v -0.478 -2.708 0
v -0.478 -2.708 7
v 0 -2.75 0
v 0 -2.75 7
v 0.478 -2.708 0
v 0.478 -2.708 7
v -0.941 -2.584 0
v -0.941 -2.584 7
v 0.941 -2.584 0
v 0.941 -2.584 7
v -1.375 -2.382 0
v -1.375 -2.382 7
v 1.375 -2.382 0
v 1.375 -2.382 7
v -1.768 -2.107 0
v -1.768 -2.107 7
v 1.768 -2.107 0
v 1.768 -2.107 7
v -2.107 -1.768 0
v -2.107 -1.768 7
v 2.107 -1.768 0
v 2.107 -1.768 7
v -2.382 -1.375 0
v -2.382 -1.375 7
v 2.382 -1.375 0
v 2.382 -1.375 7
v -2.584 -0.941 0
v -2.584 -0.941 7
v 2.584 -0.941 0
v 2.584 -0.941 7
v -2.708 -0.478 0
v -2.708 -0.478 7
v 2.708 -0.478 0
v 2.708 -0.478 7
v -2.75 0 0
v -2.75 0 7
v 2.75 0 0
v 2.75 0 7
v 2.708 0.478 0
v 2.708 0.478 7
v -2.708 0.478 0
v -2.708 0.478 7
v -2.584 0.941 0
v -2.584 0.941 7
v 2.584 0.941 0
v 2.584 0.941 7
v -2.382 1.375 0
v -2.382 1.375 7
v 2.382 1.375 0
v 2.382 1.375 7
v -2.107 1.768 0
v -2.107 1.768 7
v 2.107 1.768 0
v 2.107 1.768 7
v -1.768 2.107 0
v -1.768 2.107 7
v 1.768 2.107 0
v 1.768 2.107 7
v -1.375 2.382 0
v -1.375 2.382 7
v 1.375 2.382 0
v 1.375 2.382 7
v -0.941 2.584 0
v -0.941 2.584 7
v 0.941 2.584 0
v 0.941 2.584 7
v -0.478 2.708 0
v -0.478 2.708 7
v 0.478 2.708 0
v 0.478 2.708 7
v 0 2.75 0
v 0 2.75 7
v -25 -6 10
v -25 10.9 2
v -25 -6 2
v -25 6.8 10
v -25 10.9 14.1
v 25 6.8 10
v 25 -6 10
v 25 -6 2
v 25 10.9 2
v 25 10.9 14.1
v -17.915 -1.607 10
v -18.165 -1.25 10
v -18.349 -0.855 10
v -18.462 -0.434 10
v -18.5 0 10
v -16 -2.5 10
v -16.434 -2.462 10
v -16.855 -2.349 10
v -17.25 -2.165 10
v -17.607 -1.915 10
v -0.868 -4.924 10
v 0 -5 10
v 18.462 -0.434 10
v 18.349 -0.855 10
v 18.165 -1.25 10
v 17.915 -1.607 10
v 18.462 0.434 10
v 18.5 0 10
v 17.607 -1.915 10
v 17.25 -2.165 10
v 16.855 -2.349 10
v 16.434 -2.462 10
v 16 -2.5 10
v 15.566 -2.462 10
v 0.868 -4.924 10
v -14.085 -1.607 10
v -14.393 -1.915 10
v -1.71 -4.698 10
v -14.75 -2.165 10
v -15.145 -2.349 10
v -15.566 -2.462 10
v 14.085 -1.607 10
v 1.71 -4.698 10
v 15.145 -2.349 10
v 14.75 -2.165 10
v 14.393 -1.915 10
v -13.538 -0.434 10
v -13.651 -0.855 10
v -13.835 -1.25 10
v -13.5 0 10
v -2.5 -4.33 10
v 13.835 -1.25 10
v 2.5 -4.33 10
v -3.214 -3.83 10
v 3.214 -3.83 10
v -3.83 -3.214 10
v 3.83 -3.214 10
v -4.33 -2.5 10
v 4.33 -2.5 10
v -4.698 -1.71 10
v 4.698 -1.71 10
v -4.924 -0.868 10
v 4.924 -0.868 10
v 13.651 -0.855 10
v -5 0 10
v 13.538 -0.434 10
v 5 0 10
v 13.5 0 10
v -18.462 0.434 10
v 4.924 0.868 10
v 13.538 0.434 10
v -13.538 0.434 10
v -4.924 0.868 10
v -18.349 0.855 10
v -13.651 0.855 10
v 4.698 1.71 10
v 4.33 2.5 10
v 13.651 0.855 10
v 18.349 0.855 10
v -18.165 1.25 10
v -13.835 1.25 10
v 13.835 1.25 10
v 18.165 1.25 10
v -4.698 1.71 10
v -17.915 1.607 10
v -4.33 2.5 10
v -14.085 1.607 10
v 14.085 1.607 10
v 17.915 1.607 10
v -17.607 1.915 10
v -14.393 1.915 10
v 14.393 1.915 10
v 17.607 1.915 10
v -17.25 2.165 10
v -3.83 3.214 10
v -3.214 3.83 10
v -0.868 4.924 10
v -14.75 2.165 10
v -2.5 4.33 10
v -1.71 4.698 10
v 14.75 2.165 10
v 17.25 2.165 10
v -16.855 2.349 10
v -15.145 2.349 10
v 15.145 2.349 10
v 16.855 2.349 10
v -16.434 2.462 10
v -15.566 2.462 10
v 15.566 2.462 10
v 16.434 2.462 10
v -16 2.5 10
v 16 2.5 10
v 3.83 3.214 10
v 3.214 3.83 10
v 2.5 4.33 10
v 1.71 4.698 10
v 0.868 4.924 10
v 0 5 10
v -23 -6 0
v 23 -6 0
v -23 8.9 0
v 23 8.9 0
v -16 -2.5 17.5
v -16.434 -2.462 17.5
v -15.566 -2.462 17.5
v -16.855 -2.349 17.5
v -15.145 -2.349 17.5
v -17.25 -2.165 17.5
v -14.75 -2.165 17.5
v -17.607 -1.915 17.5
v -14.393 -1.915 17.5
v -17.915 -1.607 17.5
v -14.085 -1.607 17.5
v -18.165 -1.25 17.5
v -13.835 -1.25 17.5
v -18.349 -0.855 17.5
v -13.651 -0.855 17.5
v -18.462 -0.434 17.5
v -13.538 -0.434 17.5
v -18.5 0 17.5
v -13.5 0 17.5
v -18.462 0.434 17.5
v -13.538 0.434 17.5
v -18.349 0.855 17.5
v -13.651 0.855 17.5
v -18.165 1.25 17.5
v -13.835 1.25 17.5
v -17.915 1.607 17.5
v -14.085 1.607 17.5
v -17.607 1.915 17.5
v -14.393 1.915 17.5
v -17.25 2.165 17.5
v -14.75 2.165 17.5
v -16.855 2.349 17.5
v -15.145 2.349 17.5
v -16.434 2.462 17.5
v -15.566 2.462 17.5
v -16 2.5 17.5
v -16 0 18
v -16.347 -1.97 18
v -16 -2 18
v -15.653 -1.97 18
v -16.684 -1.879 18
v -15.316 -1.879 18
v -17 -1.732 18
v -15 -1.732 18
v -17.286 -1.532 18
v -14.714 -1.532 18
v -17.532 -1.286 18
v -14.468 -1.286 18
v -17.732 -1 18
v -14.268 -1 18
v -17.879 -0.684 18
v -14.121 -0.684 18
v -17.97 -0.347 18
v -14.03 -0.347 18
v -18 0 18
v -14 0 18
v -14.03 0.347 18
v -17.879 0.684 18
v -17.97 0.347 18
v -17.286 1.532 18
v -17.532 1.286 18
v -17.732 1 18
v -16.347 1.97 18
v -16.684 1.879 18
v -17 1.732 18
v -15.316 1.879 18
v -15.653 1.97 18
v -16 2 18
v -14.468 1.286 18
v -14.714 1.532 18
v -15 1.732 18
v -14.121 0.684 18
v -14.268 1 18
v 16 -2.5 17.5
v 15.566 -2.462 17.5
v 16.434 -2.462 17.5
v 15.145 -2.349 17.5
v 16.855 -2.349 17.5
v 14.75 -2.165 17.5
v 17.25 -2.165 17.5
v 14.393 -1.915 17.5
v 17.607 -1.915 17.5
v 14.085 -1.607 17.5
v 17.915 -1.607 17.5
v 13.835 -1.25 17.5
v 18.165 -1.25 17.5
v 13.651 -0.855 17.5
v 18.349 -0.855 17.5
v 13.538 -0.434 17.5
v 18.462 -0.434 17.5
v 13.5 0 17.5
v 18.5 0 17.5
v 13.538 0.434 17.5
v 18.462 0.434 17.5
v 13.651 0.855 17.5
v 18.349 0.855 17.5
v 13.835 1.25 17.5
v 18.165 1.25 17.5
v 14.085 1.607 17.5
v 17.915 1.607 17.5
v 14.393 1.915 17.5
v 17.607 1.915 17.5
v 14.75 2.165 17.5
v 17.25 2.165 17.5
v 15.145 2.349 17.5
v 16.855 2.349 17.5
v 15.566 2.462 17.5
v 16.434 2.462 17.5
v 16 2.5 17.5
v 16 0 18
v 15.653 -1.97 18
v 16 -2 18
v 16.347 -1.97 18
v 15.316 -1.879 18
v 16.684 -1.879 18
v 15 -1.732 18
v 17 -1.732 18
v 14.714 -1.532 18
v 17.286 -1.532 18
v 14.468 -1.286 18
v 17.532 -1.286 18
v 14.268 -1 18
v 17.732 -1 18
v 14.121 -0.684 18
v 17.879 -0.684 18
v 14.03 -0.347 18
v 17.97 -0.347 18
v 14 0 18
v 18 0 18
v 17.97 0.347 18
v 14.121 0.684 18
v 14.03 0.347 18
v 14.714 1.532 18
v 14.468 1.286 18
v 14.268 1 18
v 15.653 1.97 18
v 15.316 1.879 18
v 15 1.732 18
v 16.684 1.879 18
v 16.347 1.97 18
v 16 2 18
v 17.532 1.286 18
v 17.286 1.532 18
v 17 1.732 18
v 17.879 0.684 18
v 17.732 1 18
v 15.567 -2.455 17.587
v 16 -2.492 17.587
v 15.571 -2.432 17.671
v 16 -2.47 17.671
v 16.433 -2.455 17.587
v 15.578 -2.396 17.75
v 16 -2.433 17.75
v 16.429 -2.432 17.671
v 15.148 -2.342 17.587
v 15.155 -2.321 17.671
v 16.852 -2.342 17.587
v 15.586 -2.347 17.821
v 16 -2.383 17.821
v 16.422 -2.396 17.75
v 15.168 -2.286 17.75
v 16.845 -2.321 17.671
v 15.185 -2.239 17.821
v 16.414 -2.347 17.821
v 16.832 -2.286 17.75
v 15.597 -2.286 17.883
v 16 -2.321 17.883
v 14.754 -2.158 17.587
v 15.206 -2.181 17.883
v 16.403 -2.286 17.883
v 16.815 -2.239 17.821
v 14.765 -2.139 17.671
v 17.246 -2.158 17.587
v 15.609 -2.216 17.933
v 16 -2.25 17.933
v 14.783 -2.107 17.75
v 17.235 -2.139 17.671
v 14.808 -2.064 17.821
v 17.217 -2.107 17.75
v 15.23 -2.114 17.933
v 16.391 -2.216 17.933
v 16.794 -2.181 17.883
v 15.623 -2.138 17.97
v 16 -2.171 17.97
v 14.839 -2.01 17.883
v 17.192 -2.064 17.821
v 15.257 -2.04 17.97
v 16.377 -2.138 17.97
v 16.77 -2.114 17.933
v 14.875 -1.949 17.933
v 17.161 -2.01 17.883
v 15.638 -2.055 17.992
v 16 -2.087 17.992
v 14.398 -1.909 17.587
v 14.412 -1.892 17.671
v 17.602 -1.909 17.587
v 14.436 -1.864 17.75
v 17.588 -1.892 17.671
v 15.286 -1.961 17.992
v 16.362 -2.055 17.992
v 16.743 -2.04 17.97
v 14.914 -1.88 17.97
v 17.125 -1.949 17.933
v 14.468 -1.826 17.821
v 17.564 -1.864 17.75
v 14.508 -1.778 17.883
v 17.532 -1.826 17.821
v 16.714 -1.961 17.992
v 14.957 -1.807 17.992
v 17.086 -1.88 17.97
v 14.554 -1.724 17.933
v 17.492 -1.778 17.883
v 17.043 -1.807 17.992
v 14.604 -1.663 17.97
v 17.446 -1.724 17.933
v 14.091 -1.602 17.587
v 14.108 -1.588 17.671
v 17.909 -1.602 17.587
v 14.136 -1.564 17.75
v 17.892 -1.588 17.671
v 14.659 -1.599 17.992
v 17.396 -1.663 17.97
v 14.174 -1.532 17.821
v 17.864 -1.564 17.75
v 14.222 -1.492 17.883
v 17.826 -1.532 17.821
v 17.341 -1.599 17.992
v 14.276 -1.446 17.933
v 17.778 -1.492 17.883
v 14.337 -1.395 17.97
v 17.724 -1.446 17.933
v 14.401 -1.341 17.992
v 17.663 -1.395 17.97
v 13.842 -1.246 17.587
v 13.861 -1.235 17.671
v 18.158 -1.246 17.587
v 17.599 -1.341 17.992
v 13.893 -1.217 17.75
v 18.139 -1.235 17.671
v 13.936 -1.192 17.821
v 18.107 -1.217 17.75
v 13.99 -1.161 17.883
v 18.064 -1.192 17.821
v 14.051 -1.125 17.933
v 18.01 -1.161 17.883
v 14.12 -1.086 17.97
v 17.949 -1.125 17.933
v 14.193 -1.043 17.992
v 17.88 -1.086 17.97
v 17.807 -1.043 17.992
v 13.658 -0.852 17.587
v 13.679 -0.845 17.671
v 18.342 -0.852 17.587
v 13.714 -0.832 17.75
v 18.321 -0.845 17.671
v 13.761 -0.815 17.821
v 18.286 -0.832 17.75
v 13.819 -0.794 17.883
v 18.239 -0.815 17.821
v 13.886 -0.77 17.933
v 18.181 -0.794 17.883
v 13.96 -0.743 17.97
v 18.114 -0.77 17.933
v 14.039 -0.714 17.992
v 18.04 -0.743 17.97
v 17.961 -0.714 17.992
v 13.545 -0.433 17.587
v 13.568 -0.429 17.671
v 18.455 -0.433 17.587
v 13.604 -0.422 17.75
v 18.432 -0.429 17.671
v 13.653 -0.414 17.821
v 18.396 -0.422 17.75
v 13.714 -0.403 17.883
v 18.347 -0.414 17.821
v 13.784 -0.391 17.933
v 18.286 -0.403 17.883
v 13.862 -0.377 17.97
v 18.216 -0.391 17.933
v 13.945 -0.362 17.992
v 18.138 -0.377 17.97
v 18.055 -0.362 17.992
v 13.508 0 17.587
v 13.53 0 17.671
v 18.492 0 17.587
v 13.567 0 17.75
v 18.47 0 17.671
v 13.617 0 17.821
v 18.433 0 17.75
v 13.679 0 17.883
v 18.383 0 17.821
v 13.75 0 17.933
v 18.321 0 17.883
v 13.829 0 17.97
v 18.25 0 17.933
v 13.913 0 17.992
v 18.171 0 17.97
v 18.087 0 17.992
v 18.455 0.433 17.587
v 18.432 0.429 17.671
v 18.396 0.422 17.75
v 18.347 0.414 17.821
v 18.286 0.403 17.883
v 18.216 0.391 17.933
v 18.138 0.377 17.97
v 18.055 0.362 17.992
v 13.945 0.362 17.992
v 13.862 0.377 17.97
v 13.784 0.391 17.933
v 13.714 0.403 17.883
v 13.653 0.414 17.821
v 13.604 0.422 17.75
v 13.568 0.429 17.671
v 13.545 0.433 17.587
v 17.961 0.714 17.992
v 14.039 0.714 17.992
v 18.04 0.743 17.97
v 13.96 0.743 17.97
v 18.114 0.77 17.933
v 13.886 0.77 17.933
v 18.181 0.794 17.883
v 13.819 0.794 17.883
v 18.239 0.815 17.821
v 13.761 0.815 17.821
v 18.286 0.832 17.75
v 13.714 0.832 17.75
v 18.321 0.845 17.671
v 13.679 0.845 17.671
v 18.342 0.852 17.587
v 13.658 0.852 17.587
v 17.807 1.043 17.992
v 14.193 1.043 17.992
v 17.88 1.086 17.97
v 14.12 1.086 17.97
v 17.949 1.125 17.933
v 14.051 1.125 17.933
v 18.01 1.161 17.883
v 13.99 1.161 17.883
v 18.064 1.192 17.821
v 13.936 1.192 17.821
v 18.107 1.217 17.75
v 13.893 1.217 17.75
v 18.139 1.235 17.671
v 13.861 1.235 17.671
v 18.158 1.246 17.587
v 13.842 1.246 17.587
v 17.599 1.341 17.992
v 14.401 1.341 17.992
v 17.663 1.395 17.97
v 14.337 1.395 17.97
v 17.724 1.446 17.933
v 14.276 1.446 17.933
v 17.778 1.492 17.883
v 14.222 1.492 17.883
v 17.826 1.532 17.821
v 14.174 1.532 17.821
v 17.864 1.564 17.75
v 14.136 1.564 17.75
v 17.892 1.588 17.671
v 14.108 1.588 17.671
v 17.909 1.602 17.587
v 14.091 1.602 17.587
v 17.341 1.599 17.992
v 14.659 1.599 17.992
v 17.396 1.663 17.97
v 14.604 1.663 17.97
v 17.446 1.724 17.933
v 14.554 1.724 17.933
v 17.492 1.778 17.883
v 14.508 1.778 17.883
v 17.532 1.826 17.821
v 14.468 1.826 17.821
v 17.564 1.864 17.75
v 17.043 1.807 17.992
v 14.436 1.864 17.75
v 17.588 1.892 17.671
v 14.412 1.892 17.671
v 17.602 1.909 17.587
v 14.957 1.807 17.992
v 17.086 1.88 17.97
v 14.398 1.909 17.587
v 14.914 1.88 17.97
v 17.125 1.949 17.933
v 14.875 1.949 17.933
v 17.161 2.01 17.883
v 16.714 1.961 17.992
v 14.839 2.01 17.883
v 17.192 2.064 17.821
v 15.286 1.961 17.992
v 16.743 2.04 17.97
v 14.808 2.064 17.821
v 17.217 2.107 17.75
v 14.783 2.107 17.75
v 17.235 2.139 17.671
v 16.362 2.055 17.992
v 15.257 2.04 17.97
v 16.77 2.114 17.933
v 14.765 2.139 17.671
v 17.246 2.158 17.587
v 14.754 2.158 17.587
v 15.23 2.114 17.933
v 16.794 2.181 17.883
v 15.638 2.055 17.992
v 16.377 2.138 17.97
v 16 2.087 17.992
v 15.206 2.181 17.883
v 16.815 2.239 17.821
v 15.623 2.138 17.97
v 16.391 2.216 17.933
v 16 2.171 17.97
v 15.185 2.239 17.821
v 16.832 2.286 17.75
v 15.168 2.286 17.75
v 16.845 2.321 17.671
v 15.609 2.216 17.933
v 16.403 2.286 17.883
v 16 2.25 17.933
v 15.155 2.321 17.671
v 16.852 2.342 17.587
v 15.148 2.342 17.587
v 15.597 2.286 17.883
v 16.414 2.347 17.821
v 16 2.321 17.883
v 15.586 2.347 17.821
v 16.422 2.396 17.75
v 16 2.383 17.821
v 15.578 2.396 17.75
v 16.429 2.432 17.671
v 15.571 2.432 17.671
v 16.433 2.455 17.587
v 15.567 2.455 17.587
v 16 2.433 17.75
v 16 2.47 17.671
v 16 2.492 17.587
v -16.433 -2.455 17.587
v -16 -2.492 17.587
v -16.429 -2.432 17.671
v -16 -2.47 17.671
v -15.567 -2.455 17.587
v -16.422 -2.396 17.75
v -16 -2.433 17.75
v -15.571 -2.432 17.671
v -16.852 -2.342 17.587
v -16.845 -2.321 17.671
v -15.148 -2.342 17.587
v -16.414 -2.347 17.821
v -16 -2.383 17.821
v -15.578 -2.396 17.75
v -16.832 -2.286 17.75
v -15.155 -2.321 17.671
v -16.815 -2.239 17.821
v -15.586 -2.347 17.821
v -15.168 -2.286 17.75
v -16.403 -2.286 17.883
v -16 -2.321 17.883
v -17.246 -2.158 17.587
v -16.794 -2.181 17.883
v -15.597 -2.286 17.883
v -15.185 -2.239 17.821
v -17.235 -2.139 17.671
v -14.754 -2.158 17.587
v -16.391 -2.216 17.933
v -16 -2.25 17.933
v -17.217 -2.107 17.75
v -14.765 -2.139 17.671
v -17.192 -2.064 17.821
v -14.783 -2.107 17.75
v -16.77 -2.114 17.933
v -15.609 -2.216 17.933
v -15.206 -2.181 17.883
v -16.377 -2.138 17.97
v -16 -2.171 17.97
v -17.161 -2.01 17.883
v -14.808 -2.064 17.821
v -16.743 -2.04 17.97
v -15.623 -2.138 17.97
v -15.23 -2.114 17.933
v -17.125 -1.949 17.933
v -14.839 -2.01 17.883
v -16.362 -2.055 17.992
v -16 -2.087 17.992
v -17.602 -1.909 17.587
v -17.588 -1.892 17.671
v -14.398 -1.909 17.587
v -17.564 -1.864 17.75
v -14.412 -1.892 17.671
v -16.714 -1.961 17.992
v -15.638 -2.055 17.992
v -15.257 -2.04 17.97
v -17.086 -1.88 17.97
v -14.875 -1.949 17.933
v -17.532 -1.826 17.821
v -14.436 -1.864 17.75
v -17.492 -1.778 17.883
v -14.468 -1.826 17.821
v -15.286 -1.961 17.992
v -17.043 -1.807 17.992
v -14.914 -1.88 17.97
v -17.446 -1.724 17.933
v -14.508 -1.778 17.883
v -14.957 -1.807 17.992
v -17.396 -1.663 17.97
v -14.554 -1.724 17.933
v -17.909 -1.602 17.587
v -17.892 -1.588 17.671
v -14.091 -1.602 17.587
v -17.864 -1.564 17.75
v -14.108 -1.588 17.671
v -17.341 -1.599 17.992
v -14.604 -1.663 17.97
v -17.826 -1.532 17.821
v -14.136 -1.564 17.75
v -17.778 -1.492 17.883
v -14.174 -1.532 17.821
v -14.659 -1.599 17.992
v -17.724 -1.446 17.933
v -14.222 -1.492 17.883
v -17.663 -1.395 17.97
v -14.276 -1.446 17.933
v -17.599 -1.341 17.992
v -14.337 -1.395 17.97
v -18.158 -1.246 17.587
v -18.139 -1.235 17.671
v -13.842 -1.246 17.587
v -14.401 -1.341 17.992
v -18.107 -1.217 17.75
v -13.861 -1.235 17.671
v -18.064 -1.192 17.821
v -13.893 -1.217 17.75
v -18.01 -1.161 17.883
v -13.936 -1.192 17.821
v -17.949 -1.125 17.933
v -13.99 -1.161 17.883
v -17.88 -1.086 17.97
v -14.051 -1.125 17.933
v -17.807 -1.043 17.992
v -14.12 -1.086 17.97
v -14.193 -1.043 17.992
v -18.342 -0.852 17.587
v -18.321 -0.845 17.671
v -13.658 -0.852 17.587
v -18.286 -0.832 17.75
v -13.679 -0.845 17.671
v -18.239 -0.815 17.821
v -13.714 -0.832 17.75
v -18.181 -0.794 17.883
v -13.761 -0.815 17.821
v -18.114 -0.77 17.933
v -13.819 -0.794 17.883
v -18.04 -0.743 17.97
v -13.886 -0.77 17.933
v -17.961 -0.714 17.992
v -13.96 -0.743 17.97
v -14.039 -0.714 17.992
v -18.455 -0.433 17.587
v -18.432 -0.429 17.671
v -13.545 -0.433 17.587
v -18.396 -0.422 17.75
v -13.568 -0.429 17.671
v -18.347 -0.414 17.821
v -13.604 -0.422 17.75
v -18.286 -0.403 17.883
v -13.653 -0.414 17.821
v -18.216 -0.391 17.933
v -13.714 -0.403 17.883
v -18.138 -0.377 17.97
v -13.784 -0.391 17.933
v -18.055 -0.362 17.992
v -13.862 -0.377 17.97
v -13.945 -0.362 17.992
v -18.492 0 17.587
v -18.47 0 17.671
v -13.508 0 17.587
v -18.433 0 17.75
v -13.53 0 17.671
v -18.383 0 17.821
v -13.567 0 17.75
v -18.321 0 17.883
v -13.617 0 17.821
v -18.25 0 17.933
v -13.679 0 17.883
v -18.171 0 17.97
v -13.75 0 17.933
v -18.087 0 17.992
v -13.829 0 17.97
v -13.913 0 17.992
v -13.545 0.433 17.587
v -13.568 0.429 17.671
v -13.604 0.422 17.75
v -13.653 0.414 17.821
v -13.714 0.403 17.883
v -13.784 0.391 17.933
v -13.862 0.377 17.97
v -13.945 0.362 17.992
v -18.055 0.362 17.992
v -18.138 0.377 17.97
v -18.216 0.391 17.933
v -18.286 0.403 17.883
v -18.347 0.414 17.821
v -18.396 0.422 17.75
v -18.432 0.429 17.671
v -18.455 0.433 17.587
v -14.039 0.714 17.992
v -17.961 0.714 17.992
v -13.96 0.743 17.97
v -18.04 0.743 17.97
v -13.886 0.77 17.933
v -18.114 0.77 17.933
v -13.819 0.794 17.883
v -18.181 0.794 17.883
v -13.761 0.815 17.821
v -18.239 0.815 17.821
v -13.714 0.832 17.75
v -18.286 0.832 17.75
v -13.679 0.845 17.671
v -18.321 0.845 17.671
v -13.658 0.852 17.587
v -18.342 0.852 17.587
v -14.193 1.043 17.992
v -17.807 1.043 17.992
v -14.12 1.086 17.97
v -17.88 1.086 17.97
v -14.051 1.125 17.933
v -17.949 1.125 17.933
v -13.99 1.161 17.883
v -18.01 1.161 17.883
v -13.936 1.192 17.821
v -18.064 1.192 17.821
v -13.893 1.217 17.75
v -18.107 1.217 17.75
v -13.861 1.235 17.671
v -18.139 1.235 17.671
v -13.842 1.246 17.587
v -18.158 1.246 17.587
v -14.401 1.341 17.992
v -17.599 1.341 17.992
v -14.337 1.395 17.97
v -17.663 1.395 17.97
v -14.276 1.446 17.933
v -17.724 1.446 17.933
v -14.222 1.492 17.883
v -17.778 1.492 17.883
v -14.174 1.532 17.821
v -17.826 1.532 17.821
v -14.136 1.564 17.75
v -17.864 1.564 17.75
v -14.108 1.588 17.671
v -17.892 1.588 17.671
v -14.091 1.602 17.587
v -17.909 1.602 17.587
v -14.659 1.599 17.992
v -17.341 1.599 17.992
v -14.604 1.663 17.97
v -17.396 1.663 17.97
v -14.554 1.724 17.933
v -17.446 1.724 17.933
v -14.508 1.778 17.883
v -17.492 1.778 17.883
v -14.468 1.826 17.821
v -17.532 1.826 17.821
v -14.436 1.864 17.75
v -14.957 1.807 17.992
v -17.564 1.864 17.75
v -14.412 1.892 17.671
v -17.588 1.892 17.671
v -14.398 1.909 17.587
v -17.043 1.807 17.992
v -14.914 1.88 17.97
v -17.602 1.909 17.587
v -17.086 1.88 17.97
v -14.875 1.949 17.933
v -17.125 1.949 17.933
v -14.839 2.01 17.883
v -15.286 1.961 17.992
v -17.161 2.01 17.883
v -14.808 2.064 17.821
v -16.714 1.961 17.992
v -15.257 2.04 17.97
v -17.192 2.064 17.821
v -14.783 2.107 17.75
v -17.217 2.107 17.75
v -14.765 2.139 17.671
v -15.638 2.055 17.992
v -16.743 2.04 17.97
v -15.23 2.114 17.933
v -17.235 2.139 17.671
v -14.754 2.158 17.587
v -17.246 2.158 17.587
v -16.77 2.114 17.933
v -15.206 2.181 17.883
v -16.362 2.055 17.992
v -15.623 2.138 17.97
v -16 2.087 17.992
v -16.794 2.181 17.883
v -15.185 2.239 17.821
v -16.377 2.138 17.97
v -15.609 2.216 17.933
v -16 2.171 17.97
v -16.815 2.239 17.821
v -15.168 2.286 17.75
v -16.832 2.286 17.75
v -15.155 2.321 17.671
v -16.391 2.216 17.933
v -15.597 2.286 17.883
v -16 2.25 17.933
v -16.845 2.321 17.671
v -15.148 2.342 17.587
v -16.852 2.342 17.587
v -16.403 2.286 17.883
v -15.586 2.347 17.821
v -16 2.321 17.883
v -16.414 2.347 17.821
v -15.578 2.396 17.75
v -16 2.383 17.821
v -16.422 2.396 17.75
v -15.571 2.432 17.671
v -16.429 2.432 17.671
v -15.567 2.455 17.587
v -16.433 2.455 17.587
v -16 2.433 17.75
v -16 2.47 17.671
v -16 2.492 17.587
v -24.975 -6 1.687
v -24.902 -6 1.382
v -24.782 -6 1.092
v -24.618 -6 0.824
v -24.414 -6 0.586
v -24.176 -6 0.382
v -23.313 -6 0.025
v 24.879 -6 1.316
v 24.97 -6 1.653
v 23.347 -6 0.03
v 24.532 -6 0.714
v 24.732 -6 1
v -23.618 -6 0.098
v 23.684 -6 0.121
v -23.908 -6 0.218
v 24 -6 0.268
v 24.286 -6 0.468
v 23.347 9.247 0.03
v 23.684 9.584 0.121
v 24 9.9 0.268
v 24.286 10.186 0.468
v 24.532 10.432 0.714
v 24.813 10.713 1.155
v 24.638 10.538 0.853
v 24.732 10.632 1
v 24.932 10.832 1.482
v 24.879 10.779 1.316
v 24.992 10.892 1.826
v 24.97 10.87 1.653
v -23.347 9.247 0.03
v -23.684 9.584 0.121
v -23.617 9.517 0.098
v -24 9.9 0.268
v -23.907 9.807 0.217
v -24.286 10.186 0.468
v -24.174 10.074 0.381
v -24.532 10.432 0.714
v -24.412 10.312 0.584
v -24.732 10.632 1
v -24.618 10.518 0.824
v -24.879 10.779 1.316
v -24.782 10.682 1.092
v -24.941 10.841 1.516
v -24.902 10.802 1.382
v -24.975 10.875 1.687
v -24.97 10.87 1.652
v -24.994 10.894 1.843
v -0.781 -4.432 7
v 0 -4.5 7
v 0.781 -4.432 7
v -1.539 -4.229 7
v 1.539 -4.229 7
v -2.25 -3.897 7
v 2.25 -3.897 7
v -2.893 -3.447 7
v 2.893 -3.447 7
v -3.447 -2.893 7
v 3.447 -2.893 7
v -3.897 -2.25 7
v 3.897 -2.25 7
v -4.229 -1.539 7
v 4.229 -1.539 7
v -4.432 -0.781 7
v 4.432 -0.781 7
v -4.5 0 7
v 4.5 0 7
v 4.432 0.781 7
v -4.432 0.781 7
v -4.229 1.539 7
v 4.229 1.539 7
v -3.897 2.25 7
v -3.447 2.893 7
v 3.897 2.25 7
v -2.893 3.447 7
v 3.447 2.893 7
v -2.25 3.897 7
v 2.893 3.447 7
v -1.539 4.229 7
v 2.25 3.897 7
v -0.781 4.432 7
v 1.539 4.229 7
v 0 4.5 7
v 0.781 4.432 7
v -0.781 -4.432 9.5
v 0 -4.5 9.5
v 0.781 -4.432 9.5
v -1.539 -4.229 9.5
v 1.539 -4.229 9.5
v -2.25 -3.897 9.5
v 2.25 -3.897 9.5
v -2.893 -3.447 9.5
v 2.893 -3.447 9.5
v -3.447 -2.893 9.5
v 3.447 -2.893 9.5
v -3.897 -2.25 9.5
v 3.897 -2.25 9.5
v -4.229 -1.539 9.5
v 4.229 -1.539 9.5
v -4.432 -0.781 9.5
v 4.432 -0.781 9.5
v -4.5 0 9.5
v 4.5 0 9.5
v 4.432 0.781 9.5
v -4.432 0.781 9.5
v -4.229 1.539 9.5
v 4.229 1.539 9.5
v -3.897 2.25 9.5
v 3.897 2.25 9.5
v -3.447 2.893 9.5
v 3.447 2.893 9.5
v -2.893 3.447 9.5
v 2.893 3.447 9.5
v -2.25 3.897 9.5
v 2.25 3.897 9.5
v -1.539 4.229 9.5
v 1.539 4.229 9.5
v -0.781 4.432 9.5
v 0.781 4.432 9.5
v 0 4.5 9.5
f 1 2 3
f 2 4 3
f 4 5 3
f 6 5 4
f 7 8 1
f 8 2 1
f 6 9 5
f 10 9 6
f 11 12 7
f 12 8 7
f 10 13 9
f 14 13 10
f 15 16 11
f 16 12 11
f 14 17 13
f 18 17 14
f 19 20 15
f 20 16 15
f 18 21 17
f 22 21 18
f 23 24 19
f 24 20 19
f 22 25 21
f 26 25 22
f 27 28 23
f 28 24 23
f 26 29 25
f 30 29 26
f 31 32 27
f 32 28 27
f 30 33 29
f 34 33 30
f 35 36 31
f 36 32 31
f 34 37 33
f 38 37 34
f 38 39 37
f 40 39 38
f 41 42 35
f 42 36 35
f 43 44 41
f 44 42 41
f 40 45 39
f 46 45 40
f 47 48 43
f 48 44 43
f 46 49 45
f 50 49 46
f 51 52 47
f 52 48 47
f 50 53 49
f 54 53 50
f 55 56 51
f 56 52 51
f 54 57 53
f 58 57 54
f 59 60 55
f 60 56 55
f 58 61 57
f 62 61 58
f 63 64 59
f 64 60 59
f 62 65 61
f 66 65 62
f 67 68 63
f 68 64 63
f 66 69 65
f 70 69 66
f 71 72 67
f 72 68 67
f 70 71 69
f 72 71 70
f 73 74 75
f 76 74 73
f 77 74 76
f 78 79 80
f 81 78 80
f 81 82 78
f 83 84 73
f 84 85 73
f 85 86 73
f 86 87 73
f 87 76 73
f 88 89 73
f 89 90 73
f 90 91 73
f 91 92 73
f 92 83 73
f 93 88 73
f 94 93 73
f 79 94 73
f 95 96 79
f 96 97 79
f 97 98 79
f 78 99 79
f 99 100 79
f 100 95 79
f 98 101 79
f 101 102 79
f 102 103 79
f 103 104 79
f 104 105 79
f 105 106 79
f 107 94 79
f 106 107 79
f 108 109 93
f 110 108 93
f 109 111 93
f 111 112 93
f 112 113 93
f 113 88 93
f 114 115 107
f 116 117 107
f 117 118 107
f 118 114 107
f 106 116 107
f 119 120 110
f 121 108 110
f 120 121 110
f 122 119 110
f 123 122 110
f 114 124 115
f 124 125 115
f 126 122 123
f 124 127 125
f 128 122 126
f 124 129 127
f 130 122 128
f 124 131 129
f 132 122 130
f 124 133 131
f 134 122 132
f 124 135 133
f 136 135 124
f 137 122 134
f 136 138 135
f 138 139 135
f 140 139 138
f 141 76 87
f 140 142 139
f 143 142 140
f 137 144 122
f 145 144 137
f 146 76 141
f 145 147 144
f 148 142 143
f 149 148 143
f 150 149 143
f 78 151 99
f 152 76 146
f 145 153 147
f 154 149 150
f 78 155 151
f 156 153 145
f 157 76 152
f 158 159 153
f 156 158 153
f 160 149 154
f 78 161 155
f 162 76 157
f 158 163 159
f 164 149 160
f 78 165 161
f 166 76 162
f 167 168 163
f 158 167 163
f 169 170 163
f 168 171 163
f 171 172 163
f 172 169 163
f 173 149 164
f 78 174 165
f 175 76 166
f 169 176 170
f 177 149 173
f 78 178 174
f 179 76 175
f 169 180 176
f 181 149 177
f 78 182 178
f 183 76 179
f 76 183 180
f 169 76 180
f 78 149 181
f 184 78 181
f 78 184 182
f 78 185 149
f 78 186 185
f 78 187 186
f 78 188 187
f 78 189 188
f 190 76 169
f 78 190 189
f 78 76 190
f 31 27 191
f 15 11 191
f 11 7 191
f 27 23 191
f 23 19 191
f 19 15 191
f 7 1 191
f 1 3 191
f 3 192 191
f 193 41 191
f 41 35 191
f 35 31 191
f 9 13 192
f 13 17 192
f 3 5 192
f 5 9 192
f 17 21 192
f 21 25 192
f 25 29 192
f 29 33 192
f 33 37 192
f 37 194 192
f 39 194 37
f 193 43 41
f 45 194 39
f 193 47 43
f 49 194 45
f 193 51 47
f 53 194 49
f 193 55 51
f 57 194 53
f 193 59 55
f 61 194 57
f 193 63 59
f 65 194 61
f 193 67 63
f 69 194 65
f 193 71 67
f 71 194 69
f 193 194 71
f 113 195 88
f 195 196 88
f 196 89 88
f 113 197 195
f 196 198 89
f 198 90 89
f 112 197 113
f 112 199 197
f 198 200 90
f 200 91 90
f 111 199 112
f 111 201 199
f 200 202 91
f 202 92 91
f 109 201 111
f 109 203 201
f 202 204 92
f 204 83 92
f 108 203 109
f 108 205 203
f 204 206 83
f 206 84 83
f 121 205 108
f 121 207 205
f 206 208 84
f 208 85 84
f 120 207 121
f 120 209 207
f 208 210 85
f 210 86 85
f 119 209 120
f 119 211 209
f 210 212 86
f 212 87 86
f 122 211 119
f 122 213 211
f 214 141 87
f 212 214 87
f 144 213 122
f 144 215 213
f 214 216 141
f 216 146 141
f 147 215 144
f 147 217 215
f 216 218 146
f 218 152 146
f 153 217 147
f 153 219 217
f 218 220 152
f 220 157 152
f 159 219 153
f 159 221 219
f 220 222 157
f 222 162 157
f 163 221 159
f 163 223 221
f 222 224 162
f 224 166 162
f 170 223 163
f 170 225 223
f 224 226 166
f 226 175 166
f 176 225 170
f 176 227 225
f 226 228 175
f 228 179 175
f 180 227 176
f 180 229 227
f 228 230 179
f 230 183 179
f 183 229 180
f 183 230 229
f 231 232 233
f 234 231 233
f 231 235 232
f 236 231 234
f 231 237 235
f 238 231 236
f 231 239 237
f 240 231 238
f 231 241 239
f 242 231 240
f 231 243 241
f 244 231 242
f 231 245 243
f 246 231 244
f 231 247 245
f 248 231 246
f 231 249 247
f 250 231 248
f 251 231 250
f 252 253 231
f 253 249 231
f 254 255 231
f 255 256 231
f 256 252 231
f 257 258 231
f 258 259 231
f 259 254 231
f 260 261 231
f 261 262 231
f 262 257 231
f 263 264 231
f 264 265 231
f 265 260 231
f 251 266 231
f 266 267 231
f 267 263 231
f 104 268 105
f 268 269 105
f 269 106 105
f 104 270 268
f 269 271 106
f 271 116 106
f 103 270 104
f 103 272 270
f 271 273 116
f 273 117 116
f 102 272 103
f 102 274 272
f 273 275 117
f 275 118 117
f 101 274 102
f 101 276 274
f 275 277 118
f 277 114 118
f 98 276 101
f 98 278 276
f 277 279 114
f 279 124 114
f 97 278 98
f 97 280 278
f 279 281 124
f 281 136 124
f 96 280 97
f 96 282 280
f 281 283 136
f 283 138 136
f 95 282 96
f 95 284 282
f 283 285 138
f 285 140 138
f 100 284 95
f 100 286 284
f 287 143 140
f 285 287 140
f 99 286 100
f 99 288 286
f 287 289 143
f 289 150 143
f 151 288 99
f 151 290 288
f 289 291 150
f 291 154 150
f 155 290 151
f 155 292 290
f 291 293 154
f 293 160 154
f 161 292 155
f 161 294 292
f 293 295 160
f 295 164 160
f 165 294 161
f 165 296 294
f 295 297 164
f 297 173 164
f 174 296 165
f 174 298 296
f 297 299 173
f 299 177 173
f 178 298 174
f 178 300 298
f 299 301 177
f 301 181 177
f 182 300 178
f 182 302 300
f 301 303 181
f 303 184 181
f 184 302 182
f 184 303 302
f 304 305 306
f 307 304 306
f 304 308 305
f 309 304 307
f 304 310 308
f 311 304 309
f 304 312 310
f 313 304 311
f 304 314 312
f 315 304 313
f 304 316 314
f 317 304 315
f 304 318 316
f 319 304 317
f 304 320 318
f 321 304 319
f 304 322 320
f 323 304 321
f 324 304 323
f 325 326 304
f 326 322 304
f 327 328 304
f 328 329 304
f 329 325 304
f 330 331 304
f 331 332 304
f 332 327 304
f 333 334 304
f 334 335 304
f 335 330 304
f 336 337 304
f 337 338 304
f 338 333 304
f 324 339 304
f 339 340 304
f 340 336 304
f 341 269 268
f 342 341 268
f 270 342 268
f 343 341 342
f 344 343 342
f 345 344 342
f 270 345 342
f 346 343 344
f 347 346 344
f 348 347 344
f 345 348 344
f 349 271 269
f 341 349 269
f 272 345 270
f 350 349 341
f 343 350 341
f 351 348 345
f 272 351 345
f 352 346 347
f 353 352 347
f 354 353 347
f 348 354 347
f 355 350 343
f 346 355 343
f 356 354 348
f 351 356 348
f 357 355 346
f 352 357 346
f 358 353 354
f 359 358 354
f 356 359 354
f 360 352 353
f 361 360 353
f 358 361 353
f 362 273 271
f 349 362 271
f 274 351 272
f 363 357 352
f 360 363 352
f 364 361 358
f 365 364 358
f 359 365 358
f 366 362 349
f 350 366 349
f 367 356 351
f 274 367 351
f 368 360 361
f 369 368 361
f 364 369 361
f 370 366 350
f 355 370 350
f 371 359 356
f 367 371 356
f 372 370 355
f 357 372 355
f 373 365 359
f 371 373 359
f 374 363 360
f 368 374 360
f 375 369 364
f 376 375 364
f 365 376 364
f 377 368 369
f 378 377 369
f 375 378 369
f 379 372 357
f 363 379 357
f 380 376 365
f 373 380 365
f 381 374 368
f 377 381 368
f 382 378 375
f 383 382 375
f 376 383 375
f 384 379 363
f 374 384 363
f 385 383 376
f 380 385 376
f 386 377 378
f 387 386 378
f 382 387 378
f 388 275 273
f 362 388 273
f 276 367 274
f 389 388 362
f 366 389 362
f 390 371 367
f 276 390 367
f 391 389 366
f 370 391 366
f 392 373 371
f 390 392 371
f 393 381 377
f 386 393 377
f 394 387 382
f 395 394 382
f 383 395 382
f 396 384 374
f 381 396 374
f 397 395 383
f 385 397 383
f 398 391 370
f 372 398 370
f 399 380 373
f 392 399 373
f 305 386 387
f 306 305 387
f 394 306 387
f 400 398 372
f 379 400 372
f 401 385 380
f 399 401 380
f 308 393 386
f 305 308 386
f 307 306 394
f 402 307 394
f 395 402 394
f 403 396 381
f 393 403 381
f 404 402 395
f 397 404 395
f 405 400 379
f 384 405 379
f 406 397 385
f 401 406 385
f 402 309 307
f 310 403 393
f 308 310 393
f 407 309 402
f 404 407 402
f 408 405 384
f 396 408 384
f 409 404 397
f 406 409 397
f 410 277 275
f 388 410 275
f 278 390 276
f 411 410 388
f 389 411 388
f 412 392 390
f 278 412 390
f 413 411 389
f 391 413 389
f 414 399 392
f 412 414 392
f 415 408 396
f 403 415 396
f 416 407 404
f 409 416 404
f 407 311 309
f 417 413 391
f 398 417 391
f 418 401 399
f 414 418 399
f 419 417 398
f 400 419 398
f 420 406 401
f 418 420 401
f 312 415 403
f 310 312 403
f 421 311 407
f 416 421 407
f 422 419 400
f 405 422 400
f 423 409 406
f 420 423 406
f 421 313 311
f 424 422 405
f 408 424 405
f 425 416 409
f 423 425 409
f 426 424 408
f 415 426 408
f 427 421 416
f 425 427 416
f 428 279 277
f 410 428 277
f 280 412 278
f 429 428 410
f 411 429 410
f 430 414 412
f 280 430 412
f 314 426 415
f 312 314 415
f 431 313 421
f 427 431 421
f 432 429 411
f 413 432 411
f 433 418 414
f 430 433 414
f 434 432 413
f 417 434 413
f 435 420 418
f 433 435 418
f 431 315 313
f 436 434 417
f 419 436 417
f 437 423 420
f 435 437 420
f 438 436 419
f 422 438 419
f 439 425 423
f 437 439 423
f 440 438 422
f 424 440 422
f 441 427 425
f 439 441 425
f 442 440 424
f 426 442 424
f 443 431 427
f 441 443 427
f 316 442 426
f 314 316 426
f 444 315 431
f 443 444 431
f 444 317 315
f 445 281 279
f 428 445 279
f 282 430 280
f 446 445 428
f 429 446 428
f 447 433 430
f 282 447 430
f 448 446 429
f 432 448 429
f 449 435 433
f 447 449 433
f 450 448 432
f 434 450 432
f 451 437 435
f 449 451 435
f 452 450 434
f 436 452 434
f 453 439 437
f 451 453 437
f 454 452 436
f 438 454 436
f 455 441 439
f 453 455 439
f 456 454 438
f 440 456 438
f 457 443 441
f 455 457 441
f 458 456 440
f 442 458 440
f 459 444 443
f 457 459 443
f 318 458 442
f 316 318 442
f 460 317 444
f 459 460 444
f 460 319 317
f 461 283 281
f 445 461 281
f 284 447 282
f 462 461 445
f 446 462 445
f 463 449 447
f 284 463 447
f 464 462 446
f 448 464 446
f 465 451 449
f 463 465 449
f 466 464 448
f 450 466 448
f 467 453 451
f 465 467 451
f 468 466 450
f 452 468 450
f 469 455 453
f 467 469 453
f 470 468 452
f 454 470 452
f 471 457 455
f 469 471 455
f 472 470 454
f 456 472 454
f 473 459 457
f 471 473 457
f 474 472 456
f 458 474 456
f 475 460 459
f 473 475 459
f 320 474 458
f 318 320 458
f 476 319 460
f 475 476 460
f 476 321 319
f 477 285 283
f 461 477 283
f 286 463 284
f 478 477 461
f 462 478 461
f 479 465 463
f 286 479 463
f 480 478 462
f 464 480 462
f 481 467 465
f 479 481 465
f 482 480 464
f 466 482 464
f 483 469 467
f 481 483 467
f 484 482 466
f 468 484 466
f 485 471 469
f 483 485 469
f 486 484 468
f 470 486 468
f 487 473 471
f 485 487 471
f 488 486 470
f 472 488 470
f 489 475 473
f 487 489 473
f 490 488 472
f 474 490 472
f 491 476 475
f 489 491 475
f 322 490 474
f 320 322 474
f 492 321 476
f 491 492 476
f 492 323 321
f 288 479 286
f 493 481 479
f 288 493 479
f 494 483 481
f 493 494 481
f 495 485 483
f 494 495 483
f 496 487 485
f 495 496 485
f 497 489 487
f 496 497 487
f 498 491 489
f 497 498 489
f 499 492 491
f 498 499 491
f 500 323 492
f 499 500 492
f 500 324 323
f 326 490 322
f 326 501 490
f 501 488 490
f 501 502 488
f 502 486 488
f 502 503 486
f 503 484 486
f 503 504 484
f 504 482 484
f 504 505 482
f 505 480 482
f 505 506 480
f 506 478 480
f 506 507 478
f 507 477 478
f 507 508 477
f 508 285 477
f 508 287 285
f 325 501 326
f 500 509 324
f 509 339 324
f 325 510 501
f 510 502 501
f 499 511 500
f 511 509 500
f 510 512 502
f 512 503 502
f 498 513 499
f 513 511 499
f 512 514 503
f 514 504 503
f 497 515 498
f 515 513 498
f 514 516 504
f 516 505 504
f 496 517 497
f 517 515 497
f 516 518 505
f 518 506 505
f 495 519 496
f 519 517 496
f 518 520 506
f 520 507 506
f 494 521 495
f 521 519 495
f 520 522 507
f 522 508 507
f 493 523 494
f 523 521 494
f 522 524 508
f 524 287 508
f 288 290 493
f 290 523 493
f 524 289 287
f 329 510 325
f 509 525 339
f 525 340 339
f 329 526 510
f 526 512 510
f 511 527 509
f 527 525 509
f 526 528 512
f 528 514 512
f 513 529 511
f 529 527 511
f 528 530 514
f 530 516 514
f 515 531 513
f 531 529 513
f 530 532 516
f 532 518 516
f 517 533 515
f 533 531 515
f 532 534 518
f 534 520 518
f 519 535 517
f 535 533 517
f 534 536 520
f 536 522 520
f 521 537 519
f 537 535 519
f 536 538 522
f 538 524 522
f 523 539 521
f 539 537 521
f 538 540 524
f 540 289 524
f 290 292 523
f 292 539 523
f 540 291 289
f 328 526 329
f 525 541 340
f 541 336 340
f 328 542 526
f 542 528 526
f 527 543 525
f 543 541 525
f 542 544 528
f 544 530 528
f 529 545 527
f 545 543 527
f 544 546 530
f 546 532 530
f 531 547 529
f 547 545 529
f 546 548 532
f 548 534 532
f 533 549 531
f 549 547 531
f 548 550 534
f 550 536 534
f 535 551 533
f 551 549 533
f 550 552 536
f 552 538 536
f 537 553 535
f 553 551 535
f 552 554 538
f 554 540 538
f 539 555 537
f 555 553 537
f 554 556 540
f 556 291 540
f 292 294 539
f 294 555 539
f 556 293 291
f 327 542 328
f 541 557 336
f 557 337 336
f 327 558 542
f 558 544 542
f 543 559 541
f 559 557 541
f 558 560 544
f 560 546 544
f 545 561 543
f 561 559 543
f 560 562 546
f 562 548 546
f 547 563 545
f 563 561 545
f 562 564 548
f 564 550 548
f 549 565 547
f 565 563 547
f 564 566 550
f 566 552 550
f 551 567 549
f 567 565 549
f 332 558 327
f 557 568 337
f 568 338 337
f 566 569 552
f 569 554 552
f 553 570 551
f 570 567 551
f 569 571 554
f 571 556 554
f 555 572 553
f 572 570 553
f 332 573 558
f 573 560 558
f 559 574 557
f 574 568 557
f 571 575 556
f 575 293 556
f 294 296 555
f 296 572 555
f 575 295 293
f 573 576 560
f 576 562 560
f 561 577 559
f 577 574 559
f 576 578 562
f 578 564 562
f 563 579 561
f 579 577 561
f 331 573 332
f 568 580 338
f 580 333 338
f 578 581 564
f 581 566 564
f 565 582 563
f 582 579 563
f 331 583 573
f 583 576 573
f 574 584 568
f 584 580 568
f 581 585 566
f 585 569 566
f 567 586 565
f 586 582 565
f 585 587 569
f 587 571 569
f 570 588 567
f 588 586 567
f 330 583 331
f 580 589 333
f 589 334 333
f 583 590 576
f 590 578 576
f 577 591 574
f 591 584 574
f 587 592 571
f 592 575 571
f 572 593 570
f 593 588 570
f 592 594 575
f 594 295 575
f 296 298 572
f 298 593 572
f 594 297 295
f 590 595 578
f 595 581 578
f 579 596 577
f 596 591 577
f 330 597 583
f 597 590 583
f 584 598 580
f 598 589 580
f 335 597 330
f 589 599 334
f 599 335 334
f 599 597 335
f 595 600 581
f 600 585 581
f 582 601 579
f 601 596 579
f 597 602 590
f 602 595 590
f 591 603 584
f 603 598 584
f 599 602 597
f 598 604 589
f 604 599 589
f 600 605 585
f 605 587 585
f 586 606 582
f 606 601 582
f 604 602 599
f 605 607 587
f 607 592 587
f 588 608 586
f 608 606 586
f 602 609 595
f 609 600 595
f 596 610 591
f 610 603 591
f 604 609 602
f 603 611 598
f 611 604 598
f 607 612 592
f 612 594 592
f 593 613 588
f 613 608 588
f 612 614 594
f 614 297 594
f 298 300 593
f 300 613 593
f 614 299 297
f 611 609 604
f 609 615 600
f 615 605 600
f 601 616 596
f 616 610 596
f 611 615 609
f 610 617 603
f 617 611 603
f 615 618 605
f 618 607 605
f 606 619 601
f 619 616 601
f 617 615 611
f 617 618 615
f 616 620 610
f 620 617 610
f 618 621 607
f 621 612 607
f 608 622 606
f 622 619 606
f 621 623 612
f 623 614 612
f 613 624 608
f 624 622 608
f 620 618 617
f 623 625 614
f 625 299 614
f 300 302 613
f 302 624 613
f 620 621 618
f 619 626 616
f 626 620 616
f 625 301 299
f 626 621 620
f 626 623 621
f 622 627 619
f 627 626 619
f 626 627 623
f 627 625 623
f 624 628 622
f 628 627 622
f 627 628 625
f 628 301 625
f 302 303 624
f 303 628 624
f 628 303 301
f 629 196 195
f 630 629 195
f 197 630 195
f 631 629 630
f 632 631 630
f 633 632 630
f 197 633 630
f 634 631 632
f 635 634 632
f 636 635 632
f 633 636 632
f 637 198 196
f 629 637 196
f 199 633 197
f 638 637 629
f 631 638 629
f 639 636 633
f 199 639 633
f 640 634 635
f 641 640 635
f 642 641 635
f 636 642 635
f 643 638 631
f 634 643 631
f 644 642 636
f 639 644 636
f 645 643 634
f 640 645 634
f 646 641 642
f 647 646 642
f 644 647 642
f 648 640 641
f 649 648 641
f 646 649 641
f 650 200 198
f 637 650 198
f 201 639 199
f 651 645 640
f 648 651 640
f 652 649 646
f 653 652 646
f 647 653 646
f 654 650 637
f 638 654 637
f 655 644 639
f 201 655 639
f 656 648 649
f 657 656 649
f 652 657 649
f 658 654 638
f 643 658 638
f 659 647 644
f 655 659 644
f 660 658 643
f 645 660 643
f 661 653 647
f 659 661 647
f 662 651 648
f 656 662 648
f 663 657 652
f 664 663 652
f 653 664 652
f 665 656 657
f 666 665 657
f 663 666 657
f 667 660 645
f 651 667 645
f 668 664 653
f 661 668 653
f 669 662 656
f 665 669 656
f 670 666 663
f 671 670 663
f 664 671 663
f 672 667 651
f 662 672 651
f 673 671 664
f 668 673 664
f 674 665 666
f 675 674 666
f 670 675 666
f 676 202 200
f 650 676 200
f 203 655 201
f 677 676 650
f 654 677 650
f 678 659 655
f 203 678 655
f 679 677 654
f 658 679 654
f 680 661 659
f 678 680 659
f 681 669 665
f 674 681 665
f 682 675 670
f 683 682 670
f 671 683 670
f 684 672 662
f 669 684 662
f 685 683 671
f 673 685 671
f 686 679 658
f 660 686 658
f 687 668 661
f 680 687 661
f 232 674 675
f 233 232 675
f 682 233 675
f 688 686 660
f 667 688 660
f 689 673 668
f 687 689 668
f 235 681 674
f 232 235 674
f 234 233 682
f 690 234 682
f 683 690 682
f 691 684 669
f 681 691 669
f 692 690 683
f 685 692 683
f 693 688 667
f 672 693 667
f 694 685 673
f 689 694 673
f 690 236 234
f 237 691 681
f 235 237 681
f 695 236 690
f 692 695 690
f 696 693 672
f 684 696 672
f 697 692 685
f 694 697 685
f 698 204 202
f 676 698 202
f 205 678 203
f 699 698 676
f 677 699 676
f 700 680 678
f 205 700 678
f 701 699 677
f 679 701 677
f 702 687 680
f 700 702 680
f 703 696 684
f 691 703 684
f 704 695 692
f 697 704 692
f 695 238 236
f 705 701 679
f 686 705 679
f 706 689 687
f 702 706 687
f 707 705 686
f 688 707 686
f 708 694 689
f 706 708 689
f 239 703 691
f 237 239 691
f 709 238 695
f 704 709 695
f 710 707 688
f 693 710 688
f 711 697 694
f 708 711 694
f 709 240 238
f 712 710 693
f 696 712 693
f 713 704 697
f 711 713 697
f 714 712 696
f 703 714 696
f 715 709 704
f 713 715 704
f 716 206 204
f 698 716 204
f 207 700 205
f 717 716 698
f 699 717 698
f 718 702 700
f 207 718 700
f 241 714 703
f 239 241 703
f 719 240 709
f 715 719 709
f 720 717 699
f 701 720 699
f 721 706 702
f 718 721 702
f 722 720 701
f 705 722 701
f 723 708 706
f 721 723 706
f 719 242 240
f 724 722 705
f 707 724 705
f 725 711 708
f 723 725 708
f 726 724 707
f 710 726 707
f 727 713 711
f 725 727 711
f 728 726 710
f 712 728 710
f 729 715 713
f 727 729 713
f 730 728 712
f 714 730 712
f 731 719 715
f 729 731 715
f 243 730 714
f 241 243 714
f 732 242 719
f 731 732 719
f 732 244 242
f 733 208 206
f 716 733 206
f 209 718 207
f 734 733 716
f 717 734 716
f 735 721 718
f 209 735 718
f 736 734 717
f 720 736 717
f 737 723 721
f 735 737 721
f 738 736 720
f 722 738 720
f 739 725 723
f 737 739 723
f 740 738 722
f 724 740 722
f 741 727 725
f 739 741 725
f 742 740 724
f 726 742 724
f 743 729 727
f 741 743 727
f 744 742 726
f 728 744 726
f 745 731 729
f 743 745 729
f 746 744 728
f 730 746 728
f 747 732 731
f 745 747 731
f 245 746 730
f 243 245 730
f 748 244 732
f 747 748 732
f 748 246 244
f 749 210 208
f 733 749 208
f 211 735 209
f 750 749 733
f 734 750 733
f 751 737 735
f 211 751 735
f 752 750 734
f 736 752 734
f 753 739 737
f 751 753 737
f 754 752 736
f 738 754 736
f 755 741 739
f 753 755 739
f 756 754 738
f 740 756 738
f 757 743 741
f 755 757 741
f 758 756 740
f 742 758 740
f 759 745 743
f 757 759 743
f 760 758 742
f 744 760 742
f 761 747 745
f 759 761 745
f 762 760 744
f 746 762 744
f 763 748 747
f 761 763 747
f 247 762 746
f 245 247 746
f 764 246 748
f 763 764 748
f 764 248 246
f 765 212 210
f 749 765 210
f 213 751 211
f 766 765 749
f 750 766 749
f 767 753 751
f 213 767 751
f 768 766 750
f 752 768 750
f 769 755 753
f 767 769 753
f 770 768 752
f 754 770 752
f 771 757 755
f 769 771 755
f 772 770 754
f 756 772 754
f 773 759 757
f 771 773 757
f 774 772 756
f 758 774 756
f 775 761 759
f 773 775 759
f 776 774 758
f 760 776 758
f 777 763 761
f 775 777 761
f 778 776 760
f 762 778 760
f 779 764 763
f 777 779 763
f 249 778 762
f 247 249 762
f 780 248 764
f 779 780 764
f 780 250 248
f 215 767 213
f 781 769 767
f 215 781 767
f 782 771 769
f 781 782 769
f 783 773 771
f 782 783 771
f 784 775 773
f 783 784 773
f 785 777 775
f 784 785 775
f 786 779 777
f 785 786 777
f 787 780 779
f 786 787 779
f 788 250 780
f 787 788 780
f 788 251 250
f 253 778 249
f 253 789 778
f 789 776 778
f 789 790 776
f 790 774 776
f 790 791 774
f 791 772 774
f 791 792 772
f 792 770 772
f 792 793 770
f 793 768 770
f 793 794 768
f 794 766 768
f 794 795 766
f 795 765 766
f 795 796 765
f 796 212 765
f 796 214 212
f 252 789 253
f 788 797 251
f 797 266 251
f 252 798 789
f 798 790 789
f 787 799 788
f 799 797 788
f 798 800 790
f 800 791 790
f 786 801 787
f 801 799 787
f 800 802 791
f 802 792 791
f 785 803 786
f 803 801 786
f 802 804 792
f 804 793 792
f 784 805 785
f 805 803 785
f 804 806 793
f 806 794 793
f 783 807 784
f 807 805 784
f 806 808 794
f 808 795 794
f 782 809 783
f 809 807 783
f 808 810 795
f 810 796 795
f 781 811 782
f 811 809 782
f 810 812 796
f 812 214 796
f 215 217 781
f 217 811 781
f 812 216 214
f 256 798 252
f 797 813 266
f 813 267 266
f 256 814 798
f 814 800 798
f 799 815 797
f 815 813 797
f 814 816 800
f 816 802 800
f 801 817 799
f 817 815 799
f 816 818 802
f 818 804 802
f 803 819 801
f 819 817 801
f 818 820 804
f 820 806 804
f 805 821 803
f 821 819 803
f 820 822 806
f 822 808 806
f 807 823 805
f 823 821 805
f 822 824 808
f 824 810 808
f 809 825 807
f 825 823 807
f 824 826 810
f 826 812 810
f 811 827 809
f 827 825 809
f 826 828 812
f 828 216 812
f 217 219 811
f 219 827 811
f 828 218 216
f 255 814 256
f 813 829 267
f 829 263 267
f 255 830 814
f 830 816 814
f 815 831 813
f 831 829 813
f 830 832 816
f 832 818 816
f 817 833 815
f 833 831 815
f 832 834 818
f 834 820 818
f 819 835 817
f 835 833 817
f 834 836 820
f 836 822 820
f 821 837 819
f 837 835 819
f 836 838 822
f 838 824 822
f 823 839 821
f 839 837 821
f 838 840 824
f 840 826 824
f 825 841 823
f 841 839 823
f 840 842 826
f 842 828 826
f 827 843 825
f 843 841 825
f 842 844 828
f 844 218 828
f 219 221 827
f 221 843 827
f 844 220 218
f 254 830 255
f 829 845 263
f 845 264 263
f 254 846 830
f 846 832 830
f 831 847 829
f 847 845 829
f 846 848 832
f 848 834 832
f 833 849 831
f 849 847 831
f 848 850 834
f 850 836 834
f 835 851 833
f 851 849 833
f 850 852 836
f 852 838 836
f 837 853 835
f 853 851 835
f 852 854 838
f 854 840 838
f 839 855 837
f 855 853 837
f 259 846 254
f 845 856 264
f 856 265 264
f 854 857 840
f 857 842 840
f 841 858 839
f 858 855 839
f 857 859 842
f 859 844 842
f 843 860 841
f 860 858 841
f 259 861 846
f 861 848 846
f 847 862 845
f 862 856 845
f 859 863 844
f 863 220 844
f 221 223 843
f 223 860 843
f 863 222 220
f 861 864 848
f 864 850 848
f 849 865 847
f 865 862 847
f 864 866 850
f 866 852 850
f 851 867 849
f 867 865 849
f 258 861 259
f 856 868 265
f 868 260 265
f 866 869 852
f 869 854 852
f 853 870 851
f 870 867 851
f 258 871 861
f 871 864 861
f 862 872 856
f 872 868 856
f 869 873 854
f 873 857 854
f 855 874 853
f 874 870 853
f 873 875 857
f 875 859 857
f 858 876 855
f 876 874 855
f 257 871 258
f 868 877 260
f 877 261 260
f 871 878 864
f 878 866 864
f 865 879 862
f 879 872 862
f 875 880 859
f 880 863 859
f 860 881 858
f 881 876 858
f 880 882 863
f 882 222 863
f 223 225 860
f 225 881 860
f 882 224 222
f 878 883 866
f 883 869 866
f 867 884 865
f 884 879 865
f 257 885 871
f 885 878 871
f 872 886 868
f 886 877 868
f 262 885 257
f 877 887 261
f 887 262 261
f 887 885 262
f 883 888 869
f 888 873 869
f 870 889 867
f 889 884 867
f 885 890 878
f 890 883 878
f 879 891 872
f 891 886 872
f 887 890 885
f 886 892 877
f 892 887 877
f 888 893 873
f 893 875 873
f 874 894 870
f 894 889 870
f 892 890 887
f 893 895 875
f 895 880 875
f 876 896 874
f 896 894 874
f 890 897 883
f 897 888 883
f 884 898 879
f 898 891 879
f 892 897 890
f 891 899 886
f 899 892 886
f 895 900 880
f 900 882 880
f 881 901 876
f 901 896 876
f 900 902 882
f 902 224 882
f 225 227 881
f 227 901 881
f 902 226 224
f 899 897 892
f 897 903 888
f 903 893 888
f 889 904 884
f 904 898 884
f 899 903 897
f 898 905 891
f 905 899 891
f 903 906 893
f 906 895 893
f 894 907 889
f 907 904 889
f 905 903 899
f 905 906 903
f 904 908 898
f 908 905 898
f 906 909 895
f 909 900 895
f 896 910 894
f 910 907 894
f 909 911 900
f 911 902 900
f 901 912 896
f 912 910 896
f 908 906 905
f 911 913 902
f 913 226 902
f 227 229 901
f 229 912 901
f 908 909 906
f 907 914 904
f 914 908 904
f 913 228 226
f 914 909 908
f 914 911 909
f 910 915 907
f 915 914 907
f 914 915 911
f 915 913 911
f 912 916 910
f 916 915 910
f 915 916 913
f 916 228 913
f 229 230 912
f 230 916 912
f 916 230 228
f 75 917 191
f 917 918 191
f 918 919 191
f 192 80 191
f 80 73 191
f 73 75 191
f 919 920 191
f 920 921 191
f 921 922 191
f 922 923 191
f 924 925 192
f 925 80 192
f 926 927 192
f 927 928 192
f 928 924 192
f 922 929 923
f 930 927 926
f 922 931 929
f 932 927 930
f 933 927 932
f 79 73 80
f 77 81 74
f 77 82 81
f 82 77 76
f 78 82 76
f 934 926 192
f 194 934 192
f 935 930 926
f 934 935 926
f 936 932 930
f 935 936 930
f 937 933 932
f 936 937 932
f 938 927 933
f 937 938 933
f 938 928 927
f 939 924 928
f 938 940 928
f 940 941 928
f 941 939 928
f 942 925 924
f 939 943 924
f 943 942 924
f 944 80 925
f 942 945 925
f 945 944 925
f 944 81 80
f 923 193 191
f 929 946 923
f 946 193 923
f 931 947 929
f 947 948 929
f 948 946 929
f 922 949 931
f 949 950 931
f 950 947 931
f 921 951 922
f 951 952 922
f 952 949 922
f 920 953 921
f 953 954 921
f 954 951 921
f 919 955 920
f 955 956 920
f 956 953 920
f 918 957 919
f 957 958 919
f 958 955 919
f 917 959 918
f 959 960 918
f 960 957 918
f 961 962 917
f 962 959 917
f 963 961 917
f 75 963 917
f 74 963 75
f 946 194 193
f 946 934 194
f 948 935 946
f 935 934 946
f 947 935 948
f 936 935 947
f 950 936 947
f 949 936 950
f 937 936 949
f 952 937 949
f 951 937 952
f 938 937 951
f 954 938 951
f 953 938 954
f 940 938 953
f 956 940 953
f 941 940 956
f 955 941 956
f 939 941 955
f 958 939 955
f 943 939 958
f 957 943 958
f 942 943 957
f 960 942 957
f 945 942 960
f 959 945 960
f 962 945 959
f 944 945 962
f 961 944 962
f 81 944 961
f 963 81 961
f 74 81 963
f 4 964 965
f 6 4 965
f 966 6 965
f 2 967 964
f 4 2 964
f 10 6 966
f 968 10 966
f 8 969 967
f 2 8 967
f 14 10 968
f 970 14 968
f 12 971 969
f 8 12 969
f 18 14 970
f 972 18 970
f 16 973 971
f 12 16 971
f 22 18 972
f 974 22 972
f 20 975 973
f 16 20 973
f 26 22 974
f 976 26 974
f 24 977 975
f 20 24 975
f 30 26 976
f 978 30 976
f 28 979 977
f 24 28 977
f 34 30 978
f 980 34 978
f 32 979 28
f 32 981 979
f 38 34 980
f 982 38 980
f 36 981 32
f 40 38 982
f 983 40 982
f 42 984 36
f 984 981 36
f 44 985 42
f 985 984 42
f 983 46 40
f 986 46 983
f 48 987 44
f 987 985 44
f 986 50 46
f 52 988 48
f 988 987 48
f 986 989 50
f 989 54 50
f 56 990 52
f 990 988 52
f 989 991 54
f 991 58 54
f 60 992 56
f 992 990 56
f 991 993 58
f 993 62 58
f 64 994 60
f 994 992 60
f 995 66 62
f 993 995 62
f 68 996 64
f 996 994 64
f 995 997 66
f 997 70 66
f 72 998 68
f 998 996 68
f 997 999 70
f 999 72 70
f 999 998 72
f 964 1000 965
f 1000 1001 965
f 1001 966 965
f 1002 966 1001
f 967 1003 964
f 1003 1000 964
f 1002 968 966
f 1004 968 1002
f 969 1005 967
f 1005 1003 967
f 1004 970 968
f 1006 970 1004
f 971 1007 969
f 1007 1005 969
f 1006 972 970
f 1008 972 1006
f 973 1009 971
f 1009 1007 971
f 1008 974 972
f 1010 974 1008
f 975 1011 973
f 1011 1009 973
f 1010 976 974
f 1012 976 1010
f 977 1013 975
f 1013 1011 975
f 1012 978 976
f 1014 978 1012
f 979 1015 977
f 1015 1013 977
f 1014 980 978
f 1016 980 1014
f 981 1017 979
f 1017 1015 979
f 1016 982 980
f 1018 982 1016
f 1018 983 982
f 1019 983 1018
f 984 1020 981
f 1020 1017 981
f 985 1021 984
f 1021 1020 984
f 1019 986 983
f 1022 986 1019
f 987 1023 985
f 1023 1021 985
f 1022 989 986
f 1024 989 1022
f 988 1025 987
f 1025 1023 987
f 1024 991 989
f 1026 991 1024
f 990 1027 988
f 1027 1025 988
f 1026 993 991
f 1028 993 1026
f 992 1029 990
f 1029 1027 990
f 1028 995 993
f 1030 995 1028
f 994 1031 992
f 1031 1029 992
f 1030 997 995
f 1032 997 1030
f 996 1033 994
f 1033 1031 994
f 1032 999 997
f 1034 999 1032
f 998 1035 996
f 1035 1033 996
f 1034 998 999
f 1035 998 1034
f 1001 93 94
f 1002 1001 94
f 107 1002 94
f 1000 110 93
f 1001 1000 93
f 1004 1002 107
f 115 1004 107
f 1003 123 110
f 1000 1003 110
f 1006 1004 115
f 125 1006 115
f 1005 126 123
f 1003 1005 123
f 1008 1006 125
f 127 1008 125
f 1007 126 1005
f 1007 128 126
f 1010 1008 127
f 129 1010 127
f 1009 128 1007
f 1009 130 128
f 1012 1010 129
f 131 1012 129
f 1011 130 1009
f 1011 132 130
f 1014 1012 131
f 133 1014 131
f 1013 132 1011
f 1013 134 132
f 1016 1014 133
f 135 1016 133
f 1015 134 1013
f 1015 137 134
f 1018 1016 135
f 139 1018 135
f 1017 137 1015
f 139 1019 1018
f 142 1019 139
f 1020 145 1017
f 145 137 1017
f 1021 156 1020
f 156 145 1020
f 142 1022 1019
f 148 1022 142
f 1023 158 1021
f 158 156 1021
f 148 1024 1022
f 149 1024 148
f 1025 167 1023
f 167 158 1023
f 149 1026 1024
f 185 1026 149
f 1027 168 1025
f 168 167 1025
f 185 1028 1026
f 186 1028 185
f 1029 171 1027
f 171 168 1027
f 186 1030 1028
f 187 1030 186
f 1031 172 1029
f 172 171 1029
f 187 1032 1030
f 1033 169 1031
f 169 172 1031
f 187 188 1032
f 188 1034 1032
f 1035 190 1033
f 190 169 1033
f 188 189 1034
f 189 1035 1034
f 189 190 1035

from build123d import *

# Parameters (mm, degrees)
SKETCH1_W           = 50
SKETCH1_H           = 16
BOSS_EXTRUDE1_DEPTH = 10
SKETCH2_R           = 2.75
CUT_EXTRUDE1_DEPTH  = 29.08914381
SKETCH3_R           = 2.5
BOSS_EXTRUDE2_DEPTH = 8
FILLET1_R           = 0.5
SKETCH4_W           = 50
SKETCH4_H           = 10
CUT_EXTRUDE2_DEPTH  = 2
SKETCH5_W           = 50
SKETCH5_H           = 10
BOSS_EXTRUDE3_DEPTH = 2.9
BOSS_EXTRUDE4_DEPTH = 50
FILLET2_R           = 2
SKETCH7_R           = 4.5
CUT_EXTRUDE3_DEPTH  = 3
CHAMFER1_SIZE       = 0.5


with BuildPart() as part:
    # Sketch1 → Boss-Extrude1 (new body)
    with BuildSketch(Plane.XY):
        Rectangle(SKETCH1_W, SKETCH1_H)
    extrude(amount=BOSS_EXTRUDE1_DEPTH)

    # Sketch2 → Cut-Extrude1 (cut, through all)
    with BuildSketch(Plane.XY.offset(10)):
        Circle(SKETCH2_R)
    extrude(amount=-CUT_EXTRUDE1_DEPTH, mode=Mode.SUBTRACT)

    # Sketch3 → Boss-Extrude2 (add)
    with BuildSketch(Plane.XY.offset(10)):
        with Locations((-16, 0)):
            Circle(SKETCH3_R)
        with Locations((16, 0)):
            Circle(SKETCH3_R)
    extrude(amount=BOSS_EXTRUDE2_DEPTH)

    # Fillet1
    fillet1_edges = [part.edges().sort_by_distance(p)[0] for p in [
        (-18.5, 0, 18),
        (13.5, 0, 18),
    ]]
    fillet(fillet1_edges, radius=FILLET1_R)

    # Sketch4 → Cut-Extrude2 (cut)
    with BuildSketch(Plane(origin=(0, -8, 0), x_dir=(-1, 0, 0), z_dir=(0, -1, 0))):
        with Locations((0, -5)):
            Rectangle(SKETCH4_W, SKETCH4_H)
    extrude(amount=-CUT_EXTRUDE2_DEPTH, mode=Mode.SUBTRACT)

    # Sketch5 → Boss-Extrude3 (add)
    with BuildSketch(Plane(origin=(0, 8, 0), x_dir=(1, 0, 0), z_dir=(0, 1, 0))):
        with Locations((0, -5)):
            Rectangle(SKETCH5_W, SKETCH5_H)
    extrude(amount=BOSS_EXTRUDE3_DEPTH)

    # Sketch6 → Boss-Extrude4 (add, through all)
    with BuildSketch(Plane(origin=(25, 0, 0), x_dir=(0, 0, -1), z_dir=(1, 0, 0))):
        Polygon((-14.1, 10.9), (-10, 6.8), (-10, 10.9), align=None)
    extrude(amount=-BOSS_EXTRUDE4_DEPTH)

    # Fillet2
    fillet2_edges = [part.edges().sort_by_distance(p)[0] for p in [
        (25, 2.45, 0),
        (0, 10.9, 0),
        (-25, 2.45, 0),
    ]]
    fillet(fillet2_edges, radius=FILLET2_R)

    # Sketch7 → Cut-Extrude3 (cut)
    with BuildSketch(Plane.XY.offset(10)):
        Circle(SKETCH7_R)
    extrude(amount=-CUT_EXTRUDE3_DEPTH, mode=Mode.SUBTRACT)

    # Chamfer1
    chamfer1_edges = [part.edges().sort_by_distance(p)[0] for p in [
        (-4.5, 0, 10),
    ]]
    chamfer(chamfer1_edges, length=CHAMFER1_SIZE)


solid = part.part
